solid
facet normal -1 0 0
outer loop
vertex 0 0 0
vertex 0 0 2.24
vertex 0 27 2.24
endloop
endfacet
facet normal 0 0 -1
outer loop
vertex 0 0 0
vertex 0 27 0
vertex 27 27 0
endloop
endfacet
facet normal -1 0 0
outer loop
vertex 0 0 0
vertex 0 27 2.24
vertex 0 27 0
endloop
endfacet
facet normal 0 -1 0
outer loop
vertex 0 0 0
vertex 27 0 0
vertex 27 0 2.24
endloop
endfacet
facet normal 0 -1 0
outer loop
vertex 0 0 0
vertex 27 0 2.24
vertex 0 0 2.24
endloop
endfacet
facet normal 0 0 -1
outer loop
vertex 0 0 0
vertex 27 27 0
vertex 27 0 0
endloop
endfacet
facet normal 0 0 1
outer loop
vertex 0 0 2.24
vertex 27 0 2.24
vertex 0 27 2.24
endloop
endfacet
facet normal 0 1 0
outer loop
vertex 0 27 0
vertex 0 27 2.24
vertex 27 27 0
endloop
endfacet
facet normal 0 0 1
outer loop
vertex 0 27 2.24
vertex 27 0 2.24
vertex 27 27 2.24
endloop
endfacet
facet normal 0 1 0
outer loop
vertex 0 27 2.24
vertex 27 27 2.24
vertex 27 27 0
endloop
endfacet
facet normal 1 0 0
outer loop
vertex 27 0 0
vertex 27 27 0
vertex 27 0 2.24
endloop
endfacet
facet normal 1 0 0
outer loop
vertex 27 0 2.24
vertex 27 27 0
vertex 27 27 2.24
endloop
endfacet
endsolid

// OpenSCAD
/* Warning, this is a very basic generator with a lot of approximation 
input data : [BGA, ADC, 27x27x2.24mm, 592, , A, C04-25157A]
generated by com.zoubworld.electronics.cad.model3d.Basic
Date : Sun Feb 15 10:50:49 CET 2026
*/

//body
color("black")
translate([0,0,0])
cube([27.0,27.0,2.24], center=false);
